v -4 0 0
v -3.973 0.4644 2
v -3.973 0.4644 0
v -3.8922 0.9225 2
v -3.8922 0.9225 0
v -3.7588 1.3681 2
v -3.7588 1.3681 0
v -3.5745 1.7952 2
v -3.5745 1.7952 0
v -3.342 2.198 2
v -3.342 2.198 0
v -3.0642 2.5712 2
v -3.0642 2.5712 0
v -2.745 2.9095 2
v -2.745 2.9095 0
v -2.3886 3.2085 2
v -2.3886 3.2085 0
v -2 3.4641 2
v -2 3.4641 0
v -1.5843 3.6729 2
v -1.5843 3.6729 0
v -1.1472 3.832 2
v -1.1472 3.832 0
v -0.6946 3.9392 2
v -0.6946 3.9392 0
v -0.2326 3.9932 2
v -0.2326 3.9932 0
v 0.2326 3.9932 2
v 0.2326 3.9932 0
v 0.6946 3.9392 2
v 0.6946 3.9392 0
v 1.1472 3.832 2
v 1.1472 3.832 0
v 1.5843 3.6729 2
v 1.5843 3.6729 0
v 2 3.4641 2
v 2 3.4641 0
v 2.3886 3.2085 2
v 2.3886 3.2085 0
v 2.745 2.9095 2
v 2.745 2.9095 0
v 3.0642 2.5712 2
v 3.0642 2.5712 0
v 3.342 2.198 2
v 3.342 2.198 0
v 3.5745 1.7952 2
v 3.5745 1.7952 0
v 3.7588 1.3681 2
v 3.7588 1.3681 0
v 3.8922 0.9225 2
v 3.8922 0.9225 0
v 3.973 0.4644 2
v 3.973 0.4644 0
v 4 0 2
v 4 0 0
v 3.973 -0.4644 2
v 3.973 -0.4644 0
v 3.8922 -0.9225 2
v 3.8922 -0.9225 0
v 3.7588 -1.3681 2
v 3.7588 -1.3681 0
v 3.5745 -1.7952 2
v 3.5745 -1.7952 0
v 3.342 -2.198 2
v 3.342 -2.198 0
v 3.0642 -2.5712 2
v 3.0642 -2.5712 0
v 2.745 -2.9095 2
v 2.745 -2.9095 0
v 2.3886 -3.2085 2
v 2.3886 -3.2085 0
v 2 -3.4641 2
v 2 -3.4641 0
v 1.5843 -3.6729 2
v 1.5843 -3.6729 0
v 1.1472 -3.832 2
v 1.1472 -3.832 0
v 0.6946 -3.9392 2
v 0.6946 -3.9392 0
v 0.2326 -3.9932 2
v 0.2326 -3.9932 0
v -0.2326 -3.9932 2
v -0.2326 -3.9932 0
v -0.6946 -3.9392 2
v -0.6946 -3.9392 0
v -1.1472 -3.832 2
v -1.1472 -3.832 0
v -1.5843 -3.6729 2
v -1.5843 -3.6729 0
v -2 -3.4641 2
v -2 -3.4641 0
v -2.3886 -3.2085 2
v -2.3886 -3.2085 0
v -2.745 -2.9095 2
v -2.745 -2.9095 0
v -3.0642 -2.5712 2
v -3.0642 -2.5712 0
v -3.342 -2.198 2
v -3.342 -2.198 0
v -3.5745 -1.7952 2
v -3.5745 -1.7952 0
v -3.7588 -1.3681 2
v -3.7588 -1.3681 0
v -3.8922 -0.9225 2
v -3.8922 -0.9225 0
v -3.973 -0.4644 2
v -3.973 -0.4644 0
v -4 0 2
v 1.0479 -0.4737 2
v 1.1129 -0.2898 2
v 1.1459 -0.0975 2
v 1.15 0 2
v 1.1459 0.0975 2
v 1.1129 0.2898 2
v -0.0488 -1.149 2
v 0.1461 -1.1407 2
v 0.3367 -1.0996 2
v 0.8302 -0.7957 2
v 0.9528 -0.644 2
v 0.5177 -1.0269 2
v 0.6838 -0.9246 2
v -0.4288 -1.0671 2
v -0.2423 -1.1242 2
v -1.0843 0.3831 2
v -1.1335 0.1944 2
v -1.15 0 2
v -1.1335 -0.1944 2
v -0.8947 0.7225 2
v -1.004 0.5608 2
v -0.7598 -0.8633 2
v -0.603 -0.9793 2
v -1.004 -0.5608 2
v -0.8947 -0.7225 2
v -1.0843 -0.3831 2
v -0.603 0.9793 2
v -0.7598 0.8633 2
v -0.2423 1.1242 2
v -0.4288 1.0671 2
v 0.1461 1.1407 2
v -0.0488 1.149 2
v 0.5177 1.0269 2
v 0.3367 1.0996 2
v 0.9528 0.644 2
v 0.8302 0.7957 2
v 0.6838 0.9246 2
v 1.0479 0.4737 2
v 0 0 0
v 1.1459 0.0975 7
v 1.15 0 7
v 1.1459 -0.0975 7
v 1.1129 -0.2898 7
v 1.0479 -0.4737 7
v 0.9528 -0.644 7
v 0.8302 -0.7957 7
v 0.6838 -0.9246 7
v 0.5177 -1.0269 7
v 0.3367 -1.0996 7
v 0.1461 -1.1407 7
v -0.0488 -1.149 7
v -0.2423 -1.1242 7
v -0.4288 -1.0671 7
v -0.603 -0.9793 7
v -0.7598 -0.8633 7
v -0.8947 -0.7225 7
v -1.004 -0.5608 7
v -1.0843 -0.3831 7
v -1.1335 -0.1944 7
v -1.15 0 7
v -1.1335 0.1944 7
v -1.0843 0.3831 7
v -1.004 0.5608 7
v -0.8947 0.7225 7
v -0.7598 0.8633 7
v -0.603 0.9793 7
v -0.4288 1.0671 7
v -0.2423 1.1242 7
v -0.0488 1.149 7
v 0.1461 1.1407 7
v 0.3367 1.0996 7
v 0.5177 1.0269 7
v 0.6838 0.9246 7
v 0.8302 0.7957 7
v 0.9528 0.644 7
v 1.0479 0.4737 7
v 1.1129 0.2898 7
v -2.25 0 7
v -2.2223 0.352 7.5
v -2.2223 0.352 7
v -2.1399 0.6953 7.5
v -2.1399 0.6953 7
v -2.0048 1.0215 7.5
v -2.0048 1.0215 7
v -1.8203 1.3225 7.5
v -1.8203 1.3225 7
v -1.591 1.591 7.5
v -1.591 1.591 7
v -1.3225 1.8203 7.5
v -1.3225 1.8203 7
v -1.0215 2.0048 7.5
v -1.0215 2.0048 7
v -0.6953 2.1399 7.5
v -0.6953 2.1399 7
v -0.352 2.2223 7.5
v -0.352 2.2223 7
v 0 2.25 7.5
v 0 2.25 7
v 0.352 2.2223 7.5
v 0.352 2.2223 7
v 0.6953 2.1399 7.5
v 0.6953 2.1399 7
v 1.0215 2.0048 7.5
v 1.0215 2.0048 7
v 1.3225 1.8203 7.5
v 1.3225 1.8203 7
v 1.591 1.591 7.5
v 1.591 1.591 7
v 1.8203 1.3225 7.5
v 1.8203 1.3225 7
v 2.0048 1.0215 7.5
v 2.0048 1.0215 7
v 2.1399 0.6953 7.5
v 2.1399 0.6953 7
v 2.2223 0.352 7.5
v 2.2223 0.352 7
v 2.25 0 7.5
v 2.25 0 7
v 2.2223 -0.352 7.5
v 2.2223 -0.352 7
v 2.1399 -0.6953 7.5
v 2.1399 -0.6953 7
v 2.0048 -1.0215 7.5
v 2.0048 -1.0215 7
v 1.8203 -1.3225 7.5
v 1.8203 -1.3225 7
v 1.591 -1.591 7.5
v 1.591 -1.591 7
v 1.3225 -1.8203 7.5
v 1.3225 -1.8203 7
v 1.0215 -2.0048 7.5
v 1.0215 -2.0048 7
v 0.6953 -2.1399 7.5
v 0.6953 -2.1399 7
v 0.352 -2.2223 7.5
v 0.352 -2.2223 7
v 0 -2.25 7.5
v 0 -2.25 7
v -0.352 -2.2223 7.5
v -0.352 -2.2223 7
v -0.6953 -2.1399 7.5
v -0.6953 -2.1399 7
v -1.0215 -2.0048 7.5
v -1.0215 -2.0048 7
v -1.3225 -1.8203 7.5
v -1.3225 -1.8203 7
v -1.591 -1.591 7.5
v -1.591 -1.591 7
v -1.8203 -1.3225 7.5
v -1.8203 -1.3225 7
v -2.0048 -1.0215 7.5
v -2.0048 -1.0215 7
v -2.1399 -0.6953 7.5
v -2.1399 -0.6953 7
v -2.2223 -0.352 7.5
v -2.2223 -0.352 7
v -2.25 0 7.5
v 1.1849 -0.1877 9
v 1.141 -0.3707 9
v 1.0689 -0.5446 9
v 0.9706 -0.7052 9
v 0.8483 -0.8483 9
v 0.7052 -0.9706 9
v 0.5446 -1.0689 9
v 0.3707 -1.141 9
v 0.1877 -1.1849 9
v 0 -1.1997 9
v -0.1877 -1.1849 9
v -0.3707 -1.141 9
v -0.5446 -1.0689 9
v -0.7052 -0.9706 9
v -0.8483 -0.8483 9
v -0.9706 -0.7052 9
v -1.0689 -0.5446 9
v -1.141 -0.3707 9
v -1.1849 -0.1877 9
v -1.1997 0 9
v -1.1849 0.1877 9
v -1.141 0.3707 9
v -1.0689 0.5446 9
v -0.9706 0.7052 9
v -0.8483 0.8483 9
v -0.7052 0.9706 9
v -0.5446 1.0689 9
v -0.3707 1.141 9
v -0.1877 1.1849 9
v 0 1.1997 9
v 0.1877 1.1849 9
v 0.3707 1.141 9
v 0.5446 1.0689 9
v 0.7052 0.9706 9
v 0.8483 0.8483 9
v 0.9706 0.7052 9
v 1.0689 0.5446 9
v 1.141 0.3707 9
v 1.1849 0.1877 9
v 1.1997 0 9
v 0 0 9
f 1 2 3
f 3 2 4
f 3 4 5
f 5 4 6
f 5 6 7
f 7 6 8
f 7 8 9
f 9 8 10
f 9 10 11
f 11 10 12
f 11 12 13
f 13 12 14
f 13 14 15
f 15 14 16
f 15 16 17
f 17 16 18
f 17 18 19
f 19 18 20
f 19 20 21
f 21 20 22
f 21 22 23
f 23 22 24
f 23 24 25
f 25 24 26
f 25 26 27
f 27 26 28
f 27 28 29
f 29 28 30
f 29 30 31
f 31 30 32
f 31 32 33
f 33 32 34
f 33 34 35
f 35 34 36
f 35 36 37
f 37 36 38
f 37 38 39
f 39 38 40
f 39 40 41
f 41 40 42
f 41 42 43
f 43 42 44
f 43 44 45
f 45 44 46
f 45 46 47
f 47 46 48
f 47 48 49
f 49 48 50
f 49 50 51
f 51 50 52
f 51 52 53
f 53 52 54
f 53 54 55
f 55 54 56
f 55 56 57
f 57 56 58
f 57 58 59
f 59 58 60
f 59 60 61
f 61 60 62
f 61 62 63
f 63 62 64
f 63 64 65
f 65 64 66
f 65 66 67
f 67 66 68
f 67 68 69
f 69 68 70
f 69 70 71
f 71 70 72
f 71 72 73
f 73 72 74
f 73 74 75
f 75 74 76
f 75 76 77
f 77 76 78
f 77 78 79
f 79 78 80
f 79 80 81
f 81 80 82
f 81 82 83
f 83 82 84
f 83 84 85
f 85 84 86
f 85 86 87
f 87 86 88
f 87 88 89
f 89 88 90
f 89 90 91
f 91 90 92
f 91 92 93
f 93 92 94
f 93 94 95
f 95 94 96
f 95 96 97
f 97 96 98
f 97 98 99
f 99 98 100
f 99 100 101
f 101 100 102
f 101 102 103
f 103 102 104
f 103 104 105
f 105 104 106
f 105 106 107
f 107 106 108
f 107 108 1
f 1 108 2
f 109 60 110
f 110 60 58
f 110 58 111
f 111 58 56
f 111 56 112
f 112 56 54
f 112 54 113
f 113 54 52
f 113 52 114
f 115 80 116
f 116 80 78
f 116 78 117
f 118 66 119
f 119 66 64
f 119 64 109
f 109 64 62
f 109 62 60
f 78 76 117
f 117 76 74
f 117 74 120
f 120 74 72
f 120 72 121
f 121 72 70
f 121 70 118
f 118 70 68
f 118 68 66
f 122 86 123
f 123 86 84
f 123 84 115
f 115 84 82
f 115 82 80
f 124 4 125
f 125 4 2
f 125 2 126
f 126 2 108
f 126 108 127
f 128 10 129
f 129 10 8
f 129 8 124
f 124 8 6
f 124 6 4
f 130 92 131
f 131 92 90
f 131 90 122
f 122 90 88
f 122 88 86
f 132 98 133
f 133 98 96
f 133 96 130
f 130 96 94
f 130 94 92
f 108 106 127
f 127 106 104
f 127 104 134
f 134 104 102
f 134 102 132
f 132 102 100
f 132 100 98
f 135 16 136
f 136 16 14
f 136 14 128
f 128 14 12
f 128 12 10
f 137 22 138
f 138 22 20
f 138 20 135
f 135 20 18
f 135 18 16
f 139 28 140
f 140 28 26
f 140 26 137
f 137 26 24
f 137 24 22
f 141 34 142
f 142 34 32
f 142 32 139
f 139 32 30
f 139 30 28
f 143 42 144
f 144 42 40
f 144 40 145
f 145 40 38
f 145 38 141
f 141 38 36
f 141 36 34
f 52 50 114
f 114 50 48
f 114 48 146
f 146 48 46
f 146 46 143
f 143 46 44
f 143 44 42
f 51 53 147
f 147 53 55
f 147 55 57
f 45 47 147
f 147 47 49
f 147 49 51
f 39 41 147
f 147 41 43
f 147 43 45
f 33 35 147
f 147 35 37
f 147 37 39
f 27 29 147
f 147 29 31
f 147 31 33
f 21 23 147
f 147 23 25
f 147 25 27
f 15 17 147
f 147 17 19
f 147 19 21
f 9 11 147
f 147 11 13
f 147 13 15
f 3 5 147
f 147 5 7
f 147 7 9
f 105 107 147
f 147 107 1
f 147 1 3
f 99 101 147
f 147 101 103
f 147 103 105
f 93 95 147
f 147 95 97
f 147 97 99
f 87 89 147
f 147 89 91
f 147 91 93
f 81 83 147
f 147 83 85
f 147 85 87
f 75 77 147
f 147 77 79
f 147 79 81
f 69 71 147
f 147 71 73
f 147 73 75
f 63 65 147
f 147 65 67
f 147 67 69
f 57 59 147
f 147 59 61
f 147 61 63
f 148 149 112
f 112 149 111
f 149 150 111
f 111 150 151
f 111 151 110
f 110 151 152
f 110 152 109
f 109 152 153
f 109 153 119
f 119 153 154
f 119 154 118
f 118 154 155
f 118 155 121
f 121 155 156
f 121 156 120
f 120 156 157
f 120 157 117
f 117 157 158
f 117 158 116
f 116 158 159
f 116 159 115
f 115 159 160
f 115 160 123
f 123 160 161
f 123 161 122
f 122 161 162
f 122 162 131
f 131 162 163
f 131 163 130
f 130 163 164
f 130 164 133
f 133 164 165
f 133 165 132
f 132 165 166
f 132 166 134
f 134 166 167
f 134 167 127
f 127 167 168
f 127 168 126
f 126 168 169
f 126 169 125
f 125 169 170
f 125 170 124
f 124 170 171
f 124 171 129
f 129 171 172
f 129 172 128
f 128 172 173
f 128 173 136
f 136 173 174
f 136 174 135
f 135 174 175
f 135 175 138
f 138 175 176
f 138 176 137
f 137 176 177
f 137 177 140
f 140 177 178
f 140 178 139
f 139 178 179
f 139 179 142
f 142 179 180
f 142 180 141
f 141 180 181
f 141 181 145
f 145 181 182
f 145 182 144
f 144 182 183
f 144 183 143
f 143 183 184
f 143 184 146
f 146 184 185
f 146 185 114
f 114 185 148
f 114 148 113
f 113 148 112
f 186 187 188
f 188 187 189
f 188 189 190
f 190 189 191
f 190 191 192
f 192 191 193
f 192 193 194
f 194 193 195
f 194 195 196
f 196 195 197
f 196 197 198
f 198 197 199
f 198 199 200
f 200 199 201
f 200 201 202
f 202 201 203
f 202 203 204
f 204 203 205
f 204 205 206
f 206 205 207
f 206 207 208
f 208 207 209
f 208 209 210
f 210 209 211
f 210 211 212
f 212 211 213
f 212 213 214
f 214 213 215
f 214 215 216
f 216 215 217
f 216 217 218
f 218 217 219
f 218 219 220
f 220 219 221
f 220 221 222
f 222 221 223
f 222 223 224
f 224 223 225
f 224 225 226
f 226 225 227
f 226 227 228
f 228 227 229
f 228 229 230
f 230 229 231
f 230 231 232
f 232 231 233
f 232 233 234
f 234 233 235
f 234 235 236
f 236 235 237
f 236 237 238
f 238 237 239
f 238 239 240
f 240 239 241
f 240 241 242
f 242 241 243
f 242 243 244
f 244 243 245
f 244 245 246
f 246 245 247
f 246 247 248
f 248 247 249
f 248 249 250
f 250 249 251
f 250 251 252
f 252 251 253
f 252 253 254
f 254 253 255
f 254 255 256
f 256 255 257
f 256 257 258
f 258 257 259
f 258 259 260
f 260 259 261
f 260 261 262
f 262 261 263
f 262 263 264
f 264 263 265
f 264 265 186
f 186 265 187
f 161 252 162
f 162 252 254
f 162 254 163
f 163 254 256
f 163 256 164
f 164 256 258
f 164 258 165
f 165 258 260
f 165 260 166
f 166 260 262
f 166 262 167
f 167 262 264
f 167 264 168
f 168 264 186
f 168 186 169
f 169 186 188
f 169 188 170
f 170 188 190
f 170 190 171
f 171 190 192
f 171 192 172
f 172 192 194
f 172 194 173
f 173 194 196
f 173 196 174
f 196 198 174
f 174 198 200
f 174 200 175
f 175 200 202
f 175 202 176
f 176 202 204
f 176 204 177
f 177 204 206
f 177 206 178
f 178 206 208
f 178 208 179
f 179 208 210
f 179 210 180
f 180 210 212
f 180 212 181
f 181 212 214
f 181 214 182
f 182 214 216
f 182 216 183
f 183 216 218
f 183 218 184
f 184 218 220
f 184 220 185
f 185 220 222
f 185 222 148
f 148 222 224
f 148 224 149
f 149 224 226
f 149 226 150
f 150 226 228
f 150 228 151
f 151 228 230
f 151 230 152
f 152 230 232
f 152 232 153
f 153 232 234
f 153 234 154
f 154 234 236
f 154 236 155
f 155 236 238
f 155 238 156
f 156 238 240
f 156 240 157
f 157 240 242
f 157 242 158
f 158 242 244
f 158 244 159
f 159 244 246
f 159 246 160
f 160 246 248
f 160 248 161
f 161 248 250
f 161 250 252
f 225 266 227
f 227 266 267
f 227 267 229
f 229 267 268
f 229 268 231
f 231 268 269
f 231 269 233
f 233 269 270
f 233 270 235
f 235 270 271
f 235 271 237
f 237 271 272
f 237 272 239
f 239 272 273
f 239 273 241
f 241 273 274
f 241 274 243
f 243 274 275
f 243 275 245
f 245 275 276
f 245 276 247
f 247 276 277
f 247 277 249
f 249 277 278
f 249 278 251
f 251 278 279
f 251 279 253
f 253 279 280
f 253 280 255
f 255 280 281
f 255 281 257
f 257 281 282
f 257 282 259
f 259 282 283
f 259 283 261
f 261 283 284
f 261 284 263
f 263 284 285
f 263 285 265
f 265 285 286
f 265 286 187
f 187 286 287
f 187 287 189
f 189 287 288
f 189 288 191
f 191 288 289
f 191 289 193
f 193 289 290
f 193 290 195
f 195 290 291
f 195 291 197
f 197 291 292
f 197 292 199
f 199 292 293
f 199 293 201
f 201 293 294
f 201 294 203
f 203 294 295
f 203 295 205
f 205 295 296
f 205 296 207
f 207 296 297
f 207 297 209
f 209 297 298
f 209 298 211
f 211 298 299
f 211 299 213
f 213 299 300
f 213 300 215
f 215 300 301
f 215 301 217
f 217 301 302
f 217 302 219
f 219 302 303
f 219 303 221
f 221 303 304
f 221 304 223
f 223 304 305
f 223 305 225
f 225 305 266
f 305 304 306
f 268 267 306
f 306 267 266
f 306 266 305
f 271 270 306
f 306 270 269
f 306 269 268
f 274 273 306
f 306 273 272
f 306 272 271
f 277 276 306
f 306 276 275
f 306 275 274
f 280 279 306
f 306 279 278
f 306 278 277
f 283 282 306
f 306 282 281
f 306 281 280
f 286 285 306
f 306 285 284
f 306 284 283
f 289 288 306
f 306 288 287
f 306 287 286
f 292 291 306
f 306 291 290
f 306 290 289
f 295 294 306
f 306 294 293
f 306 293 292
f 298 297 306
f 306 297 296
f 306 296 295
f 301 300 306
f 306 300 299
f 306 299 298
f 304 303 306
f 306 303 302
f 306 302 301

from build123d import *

# Parameters (mm, degrees)
SKETCH_1_R      = 4
EXTRUDE_1_DEPTH = 2
SKETCH_2_R      = 1.15
EXTRUDE_2_DEPTH = 5
SKETCH_3_R      = 2.25
EXTRUDE_3_DEPTH = 0.5
SKETCH_4_R      = 2.25
EXTRUDE_4_DEPTH = 1.5
EXTRUDE_4_TAPER = 35


with BuildPart() as part:
    # 스케치1 → 보스-돌출1 (new body)
    with BuildSketch(Plane.XY):
        Circle(SKETCH_1_R)
    extrude(amount=EXTRUDE_1_DEPTH)

    # 스케치2 → 보스-돌출2 (add)
    with BuildSketch(Plane.XY.offset(2)):
        Circle(SKETCH_2_R)
    extrude(amount=EXTRUDE_2_DEPTH)

    # 스케치3 → 보스-돌출3 (add)
    with BuildSketch(Plane.XY.offset(7)):
        Circle(SKETCH_3_R)
    extrude(amount=EXTRUDE_3_DEPTH)

    # 스케치4 → 보스-돌출4 (add)
    with BuildSketch(Plane.XY.offset(7.5)):
        Circle(SKETCH_4_R)
    extrude(amount=EXTRUDE_4_DEPTH, taper=EXTRUDE_4_TAPER)


solid = part.part
